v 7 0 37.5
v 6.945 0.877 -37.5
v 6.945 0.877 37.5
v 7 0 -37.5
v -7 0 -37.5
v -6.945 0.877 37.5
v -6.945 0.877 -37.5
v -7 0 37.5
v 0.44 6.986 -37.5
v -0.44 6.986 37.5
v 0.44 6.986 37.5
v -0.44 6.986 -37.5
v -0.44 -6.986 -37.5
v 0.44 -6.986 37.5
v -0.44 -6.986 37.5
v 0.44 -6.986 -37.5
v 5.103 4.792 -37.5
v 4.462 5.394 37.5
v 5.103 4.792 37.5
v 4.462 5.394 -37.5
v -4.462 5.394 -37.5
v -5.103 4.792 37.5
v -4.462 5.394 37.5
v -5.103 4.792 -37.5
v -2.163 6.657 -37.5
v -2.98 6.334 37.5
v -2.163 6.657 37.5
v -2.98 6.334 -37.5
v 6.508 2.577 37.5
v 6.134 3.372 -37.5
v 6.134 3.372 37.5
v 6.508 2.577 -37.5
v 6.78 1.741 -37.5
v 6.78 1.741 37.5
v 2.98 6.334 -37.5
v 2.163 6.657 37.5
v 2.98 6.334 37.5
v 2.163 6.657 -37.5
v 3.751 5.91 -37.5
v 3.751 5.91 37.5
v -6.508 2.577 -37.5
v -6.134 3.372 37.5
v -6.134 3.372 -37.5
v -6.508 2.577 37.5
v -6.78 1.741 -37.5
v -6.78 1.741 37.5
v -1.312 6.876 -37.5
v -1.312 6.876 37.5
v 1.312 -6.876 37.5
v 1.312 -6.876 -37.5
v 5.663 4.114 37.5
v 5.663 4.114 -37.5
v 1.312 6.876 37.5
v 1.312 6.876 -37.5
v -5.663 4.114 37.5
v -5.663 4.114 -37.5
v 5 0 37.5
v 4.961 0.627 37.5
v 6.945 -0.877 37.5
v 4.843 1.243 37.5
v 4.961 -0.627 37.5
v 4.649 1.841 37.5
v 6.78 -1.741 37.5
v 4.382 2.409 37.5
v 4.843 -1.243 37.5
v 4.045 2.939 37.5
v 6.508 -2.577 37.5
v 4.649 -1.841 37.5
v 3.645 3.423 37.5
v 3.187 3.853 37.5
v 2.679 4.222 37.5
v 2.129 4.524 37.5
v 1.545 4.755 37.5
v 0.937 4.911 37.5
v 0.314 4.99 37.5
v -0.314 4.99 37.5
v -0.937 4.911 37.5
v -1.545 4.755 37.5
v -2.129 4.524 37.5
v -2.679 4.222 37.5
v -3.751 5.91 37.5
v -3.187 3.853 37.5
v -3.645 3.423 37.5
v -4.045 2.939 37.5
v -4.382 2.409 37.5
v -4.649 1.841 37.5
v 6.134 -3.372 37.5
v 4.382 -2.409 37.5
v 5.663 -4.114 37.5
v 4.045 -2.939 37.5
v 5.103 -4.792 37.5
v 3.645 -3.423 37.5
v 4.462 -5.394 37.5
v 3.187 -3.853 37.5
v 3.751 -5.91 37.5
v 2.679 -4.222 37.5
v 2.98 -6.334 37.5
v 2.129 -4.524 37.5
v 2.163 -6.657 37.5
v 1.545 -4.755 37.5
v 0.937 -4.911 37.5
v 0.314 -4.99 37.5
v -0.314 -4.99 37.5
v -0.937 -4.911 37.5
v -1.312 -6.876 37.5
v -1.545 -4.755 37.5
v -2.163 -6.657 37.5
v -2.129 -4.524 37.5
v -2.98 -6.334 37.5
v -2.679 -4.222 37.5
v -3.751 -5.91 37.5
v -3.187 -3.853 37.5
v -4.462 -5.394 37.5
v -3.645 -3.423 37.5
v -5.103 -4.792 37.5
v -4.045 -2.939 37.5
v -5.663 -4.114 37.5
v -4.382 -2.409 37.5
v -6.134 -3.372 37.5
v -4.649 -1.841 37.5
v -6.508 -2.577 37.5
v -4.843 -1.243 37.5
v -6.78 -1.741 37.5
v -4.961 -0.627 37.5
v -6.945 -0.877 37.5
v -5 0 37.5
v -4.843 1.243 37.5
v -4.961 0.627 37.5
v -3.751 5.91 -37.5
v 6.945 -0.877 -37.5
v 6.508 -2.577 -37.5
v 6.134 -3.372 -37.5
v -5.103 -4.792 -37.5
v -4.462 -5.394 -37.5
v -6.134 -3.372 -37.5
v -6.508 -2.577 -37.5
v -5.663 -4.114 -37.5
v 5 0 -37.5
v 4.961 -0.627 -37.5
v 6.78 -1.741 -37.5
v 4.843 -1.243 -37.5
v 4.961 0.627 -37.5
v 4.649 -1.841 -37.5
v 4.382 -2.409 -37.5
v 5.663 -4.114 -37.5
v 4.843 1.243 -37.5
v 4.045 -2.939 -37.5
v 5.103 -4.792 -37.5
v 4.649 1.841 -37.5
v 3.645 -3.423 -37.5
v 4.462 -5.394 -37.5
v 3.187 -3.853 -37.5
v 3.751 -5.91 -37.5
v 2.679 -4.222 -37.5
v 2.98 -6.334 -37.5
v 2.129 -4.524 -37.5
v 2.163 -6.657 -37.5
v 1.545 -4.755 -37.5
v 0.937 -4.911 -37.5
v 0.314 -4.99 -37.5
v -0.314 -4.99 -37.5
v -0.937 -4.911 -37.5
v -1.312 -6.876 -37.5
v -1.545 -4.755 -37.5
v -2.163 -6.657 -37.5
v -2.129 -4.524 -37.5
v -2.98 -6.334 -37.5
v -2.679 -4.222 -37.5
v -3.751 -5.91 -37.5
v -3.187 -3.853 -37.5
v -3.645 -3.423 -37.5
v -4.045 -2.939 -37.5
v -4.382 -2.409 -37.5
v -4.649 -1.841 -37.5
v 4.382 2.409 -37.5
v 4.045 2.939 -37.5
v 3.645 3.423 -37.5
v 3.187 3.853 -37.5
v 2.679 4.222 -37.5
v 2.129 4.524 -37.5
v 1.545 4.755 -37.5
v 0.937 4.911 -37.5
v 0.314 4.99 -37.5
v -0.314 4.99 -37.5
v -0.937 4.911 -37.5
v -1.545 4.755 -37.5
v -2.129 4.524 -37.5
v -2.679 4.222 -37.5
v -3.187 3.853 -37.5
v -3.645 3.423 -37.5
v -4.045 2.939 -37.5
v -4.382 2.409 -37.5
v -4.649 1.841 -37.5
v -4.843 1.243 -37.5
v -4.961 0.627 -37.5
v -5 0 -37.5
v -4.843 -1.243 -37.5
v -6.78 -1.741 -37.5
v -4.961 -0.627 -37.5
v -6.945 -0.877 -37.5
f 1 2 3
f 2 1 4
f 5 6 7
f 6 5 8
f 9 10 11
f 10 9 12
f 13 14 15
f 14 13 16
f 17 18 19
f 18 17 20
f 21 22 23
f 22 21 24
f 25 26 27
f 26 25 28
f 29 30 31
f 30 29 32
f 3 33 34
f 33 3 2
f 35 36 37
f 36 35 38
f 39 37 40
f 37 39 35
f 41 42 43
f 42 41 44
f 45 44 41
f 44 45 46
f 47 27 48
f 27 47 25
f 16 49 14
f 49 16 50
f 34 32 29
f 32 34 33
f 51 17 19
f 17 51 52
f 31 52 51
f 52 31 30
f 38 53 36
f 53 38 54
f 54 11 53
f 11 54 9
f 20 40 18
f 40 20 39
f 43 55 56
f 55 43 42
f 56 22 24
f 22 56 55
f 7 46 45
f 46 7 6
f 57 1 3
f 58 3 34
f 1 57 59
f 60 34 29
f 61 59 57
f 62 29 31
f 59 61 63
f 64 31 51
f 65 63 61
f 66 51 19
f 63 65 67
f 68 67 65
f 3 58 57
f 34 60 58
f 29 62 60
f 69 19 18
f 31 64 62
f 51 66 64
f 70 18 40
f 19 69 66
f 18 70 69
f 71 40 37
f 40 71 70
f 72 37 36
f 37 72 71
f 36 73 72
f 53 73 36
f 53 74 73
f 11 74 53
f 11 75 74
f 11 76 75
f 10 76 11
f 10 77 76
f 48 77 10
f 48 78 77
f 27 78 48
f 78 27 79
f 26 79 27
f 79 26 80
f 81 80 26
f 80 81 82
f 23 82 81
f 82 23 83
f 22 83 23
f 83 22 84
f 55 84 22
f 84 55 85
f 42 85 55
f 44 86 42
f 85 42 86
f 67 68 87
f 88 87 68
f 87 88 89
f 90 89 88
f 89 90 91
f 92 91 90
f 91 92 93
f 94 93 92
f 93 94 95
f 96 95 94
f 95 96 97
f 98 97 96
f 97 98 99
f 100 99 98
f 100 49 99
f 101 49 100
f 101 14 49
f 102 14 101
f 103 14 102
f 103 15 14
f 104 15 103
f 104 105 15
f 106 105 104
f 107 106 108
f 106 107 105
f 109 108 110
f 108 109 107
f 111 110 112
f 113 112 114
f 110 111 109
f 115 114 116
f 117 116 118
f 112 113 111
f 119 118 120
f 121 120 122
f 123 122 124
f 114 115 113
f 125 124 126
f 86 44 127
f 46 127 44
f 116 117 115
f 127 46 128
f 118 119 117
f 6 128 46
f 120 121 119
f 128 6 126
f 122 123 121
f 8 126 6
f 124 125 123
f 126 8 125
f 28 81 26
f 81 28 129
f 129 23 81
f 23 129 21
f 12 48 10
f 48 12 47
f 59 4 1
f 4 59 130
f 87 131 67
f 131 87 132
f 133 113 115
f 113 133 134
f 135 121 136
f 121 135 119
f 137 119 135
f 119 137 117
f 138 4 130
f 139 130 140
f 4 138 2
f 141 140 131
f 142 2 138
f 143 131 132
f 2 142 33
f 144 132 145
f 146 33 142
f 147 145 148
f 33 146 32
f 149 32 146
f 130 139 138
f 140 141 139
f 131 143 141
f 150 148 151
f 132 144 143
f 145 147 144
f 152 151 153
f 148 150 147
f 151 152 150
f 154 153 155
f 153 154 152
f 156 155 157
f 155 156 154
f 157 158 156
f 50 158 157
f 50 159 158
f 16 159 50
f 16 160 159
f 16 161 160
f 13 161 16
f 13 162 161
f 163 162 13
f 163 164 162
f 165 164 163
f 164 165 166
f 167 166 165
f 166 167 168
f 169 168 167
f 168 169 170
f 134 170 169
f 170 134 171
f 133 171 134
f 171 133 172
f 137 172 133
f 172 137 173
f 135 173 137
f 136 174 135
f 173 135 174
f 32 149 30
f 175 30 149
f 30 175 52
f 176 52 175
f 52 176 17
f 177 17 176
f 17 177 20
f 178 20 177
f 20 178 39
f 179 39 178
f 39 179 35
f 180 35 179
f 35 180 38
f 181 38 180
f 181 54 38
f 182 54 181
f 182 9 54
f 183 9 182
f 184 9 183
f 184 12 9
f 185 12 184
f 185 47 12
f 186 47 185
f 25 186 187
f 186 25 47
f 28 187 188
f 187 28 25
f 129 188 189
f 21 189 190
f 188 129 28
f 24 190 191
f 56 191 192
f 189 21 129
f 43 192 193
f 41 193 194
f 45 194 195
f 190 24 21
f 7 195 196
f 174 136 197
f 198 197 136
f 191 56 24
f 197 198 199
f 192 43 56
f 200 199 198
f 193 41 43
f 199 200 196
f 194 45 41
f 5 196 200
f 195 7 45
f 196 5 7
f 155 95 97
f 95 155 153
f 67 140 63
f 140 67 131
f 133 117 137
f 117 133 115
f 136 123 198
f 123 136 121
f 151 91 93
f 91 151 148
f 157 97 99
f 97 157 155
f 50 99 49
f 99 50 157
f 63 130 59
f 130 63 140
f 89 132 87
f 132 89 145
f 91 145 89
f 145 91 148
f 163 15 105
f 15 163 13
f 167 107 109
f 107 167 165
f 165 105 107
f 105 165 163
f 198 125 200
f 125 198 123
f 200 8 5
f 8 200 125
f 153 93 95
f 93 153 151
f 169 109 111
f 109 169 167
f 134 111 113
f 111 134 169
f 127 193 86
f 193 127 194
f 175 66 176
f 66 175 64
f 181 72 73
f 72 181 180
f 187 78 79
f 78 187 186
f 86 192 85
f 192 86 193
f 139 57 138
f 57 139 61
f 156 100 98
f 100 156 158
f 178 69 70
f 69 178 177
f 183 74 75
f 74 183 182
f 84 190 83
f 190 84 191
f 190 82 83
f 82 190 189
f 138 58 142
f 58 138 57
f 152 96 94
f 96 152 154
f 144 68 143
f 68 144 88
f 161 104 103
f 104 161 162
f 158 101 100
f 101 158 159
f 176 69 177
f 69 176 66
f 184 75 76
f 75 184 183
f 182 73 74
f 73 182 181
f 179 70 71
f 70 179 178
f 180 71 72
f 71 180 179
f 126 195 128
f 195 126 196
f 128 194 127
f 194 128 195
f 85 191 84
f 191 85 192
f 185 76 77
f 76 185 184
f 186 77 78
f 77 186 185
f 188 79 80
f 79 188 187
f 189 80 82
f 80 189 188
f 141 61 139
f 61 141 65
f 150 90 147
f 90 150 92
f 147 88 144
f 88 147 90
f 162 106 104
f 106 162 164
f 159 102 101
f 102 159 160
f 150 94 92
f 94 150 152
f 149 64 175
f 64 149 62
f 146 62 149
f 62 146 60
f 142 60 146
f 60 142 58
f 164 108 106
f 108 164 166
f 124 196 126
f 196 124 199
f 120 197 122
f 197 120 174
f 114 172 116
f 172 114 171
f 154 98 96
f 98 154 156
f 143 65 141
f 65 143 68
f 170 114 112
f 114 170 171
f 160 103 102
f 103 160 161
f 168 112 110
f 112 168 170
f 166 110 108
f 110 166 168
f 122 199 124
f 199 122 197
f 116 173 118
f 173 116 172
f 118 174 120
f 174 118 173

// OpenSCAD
$fn = 50;


difference() {
	union() {
		translate(v = [0, 0, -37.5000000000]) {
			cylinder(h = 75, r = 7.0000000000);
		}
	}
	union() {
		translate(v = [0, 0, -100.0000000000]) {
			cylinder(h = 200, r = 5);
		}
	}
}
